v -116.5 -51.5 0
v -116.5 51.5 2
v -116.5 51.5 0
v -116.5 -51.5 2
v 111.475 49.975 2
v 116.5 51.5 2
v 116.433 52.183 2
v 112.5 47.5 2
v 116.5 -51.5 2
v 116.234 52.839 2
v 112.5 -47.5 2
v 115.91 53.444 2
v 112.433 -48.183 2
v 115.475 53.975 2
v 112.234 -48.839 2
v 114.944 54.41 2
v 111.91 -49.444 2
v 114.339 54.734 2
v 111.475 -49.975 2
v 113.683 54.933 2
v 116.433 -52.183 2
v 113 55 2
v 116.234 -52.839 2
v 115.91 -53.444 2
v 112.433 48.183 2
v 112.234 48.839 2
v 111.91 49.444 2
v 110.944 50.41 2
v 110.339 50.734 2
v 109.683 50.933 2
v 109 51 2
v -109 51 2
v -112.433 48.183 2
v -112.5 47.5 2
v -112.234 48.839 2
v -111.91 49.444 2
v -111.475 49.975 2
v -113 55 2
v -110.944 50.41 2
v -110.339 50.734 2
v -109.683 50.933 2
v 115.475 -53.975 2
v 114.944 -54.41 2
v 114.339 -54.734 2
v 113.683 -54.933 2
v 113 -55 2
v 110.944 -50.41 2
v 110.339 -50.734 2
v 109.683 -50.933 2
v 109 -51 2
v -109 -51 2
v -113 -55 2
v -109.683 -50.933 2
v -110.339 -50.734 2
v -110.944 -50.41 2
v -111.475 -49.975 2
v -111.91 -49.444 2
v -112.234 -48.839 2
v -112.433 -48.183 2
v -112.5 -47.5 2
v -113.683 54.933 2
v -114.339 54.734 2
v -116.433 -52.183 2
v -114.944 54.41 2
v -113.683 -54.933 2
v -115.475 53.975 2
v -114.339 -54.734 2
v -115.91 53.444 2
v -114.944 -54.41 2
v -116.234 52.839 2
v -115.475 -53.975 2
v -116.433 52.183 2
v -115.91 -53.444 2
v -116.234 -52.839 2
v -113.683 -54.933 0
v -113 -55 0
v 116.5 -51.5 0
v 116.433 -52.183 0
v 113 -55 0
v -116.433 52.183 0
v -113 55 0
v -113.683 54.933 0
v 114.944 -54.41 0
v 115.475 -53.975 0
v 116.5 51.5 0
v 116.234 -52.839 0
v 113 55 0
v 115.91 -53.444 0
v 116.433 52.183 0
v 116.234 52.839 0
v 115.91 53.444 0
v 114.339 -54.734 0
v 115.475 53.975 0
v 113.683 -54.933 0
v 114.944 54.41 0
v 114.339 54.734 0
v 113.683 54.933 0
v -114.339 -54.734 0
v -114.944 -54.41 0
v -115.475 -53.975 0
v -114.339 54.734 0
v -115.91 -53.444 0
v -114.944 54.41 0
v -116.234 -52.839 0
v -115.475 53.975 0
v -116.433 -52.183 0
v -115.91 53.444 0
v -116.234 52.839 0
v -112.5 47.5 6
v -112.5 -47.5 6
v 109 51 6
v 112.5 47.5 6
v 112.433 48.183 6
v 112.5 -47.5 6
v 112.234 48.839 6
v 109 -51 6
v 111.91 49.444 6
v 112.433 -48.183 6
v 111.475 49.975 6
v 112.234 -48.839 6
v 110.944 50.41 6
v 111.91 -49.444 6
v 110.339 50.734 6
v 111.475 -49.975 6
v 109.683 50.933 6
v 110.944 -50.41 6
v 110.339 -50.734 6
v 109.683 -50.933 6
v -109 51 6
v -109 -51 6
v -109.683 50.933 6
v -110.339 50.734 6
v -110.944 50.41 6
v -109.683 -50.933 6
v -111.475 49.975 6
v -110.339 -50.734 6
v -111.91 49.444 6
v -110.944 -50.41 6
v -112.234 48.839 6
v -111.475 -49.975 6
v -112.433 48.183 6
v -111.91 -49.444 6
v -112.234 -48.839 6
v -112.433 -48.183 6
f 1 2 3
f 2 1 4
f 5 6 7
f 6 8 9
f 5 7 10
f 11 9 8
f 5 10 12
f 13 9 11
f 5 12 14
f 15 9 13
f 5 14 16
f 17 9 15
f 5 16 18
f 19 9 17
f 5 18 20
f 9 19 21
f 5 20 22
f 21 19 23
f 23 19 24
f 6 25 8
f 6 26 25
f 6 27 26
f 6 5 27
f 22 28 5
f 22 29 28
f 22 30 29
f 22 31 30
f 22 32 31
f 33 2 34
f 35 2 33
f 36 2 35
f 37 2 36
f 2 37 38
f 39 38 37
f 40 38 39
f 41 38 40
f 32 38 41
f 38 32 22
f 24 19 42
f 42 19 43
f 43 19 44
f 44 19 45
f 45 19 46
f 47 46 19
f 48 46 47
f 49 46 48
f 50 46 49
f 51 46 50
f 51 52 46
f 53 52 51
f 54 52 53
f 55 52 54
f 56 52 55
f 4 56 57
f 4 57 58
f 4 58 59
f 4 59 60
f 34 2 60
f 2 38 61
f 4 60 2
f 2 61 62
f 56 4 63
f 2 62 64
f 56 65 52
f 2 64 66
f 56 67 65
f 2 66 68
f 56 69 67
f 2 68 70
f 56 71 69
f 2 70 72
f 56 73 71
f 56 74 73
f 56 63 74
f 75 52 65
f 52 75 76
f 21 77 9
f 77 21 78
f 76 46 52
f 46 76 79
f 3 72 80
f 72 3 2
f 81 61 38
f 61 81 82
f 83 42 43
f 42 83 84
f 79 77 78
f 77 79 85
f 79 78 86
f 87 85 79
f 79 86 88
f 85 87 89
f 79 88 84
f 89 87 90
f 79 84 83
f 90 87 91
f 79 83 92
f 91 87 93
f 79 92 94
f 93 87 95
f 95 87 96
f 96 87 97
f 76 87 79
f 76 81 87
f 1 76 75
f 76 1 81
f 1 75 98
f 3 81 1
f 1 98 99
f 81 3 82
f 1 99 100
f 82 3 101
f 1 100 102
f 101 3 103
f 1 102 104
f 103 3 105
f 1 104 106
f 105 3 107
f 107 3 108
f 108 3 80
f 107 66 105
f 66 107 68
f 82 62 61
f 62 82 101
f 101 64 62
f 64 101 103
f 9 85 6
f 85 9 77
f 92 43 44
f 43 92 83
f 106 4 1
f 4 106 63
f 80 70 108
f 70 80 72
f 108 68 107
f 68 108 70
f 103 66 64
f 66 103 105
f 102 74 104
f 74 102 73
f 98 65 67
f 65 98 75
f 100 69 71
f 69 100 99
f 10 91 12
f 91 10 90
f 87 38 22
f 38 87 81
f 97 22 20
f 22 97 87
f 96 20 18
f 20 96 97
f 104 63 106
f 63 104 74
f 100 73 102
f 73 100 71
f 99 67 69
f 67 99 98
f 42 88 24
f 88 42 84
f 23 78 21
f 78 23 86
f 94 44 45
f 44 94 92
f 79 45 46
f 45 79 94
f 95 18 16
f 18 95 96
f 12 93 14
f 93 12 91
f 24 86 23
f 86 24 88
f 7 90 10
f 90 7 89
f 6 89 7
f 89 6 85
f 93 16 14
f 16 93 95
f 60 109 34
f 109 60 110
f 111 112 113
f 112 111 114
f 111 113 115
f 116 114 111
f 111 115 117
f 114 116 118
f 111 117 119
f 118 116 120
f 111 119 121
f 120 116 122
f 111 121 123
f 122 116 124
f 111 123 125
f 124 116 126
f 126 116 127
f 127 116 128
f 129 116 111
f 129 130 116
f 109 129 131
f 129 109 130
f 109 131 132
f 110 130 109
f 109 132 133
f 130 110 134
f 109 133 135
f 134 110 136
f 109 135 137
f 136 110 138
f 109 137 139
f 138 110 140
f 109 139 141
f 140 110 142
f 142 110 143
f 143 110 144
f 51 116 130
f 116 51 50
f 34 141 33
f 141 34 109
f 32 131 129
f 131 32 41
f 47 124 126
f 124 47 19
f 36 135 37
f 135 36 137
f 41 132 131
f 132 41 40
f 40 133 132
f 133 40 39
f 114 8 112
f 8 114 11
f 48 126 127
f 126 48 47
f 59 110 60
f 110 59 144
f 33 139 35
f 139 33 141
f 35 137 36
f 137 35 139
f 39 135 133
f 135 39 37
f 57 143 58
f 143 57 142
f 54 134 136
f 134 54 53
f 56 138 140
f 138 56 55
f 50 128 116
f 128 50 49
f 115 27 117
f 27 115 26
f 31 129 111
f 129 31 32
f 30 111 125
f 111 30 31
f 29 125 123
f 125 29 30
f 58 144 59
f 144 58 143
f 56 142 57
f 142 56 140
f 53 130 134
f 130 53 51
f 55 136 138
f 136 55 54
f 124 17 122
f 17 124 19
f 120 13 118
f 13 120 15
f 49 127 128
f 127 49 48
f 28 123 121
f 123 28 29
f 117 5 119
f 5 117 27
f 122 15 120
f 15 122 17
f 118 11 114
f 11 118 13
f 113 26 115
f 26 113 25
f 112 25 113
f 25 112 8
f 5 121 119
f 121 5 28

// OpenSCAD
$fn = 32;

roundedcube(225 + 8, 102 + 8, 2, 3.5);

translate([0, 0, 2])
    roundedcube(225, 102, 4, 3.5);

module roundedcube(xdim, ydim, zdim, rdim, center = true) {
    translate(center ? [-xdim / 2, -ydim / 2, 0] : [0, 0, 0])
    hull() {
        translate([rdim,rdim,0])
            cylinder(h=zdim,r=rdim);
        translate([xdim-rdim,rdim,0])
            cylinder(h=zdim,r=rdim);
        translate([rdim,ydim-rdim,0])
            cylinder(h=zdim,r=rdim);
        translate([xdim-rdim,ydim-rdim,0])
            cylinder(h=zdim,r=rdim);
    }
}
